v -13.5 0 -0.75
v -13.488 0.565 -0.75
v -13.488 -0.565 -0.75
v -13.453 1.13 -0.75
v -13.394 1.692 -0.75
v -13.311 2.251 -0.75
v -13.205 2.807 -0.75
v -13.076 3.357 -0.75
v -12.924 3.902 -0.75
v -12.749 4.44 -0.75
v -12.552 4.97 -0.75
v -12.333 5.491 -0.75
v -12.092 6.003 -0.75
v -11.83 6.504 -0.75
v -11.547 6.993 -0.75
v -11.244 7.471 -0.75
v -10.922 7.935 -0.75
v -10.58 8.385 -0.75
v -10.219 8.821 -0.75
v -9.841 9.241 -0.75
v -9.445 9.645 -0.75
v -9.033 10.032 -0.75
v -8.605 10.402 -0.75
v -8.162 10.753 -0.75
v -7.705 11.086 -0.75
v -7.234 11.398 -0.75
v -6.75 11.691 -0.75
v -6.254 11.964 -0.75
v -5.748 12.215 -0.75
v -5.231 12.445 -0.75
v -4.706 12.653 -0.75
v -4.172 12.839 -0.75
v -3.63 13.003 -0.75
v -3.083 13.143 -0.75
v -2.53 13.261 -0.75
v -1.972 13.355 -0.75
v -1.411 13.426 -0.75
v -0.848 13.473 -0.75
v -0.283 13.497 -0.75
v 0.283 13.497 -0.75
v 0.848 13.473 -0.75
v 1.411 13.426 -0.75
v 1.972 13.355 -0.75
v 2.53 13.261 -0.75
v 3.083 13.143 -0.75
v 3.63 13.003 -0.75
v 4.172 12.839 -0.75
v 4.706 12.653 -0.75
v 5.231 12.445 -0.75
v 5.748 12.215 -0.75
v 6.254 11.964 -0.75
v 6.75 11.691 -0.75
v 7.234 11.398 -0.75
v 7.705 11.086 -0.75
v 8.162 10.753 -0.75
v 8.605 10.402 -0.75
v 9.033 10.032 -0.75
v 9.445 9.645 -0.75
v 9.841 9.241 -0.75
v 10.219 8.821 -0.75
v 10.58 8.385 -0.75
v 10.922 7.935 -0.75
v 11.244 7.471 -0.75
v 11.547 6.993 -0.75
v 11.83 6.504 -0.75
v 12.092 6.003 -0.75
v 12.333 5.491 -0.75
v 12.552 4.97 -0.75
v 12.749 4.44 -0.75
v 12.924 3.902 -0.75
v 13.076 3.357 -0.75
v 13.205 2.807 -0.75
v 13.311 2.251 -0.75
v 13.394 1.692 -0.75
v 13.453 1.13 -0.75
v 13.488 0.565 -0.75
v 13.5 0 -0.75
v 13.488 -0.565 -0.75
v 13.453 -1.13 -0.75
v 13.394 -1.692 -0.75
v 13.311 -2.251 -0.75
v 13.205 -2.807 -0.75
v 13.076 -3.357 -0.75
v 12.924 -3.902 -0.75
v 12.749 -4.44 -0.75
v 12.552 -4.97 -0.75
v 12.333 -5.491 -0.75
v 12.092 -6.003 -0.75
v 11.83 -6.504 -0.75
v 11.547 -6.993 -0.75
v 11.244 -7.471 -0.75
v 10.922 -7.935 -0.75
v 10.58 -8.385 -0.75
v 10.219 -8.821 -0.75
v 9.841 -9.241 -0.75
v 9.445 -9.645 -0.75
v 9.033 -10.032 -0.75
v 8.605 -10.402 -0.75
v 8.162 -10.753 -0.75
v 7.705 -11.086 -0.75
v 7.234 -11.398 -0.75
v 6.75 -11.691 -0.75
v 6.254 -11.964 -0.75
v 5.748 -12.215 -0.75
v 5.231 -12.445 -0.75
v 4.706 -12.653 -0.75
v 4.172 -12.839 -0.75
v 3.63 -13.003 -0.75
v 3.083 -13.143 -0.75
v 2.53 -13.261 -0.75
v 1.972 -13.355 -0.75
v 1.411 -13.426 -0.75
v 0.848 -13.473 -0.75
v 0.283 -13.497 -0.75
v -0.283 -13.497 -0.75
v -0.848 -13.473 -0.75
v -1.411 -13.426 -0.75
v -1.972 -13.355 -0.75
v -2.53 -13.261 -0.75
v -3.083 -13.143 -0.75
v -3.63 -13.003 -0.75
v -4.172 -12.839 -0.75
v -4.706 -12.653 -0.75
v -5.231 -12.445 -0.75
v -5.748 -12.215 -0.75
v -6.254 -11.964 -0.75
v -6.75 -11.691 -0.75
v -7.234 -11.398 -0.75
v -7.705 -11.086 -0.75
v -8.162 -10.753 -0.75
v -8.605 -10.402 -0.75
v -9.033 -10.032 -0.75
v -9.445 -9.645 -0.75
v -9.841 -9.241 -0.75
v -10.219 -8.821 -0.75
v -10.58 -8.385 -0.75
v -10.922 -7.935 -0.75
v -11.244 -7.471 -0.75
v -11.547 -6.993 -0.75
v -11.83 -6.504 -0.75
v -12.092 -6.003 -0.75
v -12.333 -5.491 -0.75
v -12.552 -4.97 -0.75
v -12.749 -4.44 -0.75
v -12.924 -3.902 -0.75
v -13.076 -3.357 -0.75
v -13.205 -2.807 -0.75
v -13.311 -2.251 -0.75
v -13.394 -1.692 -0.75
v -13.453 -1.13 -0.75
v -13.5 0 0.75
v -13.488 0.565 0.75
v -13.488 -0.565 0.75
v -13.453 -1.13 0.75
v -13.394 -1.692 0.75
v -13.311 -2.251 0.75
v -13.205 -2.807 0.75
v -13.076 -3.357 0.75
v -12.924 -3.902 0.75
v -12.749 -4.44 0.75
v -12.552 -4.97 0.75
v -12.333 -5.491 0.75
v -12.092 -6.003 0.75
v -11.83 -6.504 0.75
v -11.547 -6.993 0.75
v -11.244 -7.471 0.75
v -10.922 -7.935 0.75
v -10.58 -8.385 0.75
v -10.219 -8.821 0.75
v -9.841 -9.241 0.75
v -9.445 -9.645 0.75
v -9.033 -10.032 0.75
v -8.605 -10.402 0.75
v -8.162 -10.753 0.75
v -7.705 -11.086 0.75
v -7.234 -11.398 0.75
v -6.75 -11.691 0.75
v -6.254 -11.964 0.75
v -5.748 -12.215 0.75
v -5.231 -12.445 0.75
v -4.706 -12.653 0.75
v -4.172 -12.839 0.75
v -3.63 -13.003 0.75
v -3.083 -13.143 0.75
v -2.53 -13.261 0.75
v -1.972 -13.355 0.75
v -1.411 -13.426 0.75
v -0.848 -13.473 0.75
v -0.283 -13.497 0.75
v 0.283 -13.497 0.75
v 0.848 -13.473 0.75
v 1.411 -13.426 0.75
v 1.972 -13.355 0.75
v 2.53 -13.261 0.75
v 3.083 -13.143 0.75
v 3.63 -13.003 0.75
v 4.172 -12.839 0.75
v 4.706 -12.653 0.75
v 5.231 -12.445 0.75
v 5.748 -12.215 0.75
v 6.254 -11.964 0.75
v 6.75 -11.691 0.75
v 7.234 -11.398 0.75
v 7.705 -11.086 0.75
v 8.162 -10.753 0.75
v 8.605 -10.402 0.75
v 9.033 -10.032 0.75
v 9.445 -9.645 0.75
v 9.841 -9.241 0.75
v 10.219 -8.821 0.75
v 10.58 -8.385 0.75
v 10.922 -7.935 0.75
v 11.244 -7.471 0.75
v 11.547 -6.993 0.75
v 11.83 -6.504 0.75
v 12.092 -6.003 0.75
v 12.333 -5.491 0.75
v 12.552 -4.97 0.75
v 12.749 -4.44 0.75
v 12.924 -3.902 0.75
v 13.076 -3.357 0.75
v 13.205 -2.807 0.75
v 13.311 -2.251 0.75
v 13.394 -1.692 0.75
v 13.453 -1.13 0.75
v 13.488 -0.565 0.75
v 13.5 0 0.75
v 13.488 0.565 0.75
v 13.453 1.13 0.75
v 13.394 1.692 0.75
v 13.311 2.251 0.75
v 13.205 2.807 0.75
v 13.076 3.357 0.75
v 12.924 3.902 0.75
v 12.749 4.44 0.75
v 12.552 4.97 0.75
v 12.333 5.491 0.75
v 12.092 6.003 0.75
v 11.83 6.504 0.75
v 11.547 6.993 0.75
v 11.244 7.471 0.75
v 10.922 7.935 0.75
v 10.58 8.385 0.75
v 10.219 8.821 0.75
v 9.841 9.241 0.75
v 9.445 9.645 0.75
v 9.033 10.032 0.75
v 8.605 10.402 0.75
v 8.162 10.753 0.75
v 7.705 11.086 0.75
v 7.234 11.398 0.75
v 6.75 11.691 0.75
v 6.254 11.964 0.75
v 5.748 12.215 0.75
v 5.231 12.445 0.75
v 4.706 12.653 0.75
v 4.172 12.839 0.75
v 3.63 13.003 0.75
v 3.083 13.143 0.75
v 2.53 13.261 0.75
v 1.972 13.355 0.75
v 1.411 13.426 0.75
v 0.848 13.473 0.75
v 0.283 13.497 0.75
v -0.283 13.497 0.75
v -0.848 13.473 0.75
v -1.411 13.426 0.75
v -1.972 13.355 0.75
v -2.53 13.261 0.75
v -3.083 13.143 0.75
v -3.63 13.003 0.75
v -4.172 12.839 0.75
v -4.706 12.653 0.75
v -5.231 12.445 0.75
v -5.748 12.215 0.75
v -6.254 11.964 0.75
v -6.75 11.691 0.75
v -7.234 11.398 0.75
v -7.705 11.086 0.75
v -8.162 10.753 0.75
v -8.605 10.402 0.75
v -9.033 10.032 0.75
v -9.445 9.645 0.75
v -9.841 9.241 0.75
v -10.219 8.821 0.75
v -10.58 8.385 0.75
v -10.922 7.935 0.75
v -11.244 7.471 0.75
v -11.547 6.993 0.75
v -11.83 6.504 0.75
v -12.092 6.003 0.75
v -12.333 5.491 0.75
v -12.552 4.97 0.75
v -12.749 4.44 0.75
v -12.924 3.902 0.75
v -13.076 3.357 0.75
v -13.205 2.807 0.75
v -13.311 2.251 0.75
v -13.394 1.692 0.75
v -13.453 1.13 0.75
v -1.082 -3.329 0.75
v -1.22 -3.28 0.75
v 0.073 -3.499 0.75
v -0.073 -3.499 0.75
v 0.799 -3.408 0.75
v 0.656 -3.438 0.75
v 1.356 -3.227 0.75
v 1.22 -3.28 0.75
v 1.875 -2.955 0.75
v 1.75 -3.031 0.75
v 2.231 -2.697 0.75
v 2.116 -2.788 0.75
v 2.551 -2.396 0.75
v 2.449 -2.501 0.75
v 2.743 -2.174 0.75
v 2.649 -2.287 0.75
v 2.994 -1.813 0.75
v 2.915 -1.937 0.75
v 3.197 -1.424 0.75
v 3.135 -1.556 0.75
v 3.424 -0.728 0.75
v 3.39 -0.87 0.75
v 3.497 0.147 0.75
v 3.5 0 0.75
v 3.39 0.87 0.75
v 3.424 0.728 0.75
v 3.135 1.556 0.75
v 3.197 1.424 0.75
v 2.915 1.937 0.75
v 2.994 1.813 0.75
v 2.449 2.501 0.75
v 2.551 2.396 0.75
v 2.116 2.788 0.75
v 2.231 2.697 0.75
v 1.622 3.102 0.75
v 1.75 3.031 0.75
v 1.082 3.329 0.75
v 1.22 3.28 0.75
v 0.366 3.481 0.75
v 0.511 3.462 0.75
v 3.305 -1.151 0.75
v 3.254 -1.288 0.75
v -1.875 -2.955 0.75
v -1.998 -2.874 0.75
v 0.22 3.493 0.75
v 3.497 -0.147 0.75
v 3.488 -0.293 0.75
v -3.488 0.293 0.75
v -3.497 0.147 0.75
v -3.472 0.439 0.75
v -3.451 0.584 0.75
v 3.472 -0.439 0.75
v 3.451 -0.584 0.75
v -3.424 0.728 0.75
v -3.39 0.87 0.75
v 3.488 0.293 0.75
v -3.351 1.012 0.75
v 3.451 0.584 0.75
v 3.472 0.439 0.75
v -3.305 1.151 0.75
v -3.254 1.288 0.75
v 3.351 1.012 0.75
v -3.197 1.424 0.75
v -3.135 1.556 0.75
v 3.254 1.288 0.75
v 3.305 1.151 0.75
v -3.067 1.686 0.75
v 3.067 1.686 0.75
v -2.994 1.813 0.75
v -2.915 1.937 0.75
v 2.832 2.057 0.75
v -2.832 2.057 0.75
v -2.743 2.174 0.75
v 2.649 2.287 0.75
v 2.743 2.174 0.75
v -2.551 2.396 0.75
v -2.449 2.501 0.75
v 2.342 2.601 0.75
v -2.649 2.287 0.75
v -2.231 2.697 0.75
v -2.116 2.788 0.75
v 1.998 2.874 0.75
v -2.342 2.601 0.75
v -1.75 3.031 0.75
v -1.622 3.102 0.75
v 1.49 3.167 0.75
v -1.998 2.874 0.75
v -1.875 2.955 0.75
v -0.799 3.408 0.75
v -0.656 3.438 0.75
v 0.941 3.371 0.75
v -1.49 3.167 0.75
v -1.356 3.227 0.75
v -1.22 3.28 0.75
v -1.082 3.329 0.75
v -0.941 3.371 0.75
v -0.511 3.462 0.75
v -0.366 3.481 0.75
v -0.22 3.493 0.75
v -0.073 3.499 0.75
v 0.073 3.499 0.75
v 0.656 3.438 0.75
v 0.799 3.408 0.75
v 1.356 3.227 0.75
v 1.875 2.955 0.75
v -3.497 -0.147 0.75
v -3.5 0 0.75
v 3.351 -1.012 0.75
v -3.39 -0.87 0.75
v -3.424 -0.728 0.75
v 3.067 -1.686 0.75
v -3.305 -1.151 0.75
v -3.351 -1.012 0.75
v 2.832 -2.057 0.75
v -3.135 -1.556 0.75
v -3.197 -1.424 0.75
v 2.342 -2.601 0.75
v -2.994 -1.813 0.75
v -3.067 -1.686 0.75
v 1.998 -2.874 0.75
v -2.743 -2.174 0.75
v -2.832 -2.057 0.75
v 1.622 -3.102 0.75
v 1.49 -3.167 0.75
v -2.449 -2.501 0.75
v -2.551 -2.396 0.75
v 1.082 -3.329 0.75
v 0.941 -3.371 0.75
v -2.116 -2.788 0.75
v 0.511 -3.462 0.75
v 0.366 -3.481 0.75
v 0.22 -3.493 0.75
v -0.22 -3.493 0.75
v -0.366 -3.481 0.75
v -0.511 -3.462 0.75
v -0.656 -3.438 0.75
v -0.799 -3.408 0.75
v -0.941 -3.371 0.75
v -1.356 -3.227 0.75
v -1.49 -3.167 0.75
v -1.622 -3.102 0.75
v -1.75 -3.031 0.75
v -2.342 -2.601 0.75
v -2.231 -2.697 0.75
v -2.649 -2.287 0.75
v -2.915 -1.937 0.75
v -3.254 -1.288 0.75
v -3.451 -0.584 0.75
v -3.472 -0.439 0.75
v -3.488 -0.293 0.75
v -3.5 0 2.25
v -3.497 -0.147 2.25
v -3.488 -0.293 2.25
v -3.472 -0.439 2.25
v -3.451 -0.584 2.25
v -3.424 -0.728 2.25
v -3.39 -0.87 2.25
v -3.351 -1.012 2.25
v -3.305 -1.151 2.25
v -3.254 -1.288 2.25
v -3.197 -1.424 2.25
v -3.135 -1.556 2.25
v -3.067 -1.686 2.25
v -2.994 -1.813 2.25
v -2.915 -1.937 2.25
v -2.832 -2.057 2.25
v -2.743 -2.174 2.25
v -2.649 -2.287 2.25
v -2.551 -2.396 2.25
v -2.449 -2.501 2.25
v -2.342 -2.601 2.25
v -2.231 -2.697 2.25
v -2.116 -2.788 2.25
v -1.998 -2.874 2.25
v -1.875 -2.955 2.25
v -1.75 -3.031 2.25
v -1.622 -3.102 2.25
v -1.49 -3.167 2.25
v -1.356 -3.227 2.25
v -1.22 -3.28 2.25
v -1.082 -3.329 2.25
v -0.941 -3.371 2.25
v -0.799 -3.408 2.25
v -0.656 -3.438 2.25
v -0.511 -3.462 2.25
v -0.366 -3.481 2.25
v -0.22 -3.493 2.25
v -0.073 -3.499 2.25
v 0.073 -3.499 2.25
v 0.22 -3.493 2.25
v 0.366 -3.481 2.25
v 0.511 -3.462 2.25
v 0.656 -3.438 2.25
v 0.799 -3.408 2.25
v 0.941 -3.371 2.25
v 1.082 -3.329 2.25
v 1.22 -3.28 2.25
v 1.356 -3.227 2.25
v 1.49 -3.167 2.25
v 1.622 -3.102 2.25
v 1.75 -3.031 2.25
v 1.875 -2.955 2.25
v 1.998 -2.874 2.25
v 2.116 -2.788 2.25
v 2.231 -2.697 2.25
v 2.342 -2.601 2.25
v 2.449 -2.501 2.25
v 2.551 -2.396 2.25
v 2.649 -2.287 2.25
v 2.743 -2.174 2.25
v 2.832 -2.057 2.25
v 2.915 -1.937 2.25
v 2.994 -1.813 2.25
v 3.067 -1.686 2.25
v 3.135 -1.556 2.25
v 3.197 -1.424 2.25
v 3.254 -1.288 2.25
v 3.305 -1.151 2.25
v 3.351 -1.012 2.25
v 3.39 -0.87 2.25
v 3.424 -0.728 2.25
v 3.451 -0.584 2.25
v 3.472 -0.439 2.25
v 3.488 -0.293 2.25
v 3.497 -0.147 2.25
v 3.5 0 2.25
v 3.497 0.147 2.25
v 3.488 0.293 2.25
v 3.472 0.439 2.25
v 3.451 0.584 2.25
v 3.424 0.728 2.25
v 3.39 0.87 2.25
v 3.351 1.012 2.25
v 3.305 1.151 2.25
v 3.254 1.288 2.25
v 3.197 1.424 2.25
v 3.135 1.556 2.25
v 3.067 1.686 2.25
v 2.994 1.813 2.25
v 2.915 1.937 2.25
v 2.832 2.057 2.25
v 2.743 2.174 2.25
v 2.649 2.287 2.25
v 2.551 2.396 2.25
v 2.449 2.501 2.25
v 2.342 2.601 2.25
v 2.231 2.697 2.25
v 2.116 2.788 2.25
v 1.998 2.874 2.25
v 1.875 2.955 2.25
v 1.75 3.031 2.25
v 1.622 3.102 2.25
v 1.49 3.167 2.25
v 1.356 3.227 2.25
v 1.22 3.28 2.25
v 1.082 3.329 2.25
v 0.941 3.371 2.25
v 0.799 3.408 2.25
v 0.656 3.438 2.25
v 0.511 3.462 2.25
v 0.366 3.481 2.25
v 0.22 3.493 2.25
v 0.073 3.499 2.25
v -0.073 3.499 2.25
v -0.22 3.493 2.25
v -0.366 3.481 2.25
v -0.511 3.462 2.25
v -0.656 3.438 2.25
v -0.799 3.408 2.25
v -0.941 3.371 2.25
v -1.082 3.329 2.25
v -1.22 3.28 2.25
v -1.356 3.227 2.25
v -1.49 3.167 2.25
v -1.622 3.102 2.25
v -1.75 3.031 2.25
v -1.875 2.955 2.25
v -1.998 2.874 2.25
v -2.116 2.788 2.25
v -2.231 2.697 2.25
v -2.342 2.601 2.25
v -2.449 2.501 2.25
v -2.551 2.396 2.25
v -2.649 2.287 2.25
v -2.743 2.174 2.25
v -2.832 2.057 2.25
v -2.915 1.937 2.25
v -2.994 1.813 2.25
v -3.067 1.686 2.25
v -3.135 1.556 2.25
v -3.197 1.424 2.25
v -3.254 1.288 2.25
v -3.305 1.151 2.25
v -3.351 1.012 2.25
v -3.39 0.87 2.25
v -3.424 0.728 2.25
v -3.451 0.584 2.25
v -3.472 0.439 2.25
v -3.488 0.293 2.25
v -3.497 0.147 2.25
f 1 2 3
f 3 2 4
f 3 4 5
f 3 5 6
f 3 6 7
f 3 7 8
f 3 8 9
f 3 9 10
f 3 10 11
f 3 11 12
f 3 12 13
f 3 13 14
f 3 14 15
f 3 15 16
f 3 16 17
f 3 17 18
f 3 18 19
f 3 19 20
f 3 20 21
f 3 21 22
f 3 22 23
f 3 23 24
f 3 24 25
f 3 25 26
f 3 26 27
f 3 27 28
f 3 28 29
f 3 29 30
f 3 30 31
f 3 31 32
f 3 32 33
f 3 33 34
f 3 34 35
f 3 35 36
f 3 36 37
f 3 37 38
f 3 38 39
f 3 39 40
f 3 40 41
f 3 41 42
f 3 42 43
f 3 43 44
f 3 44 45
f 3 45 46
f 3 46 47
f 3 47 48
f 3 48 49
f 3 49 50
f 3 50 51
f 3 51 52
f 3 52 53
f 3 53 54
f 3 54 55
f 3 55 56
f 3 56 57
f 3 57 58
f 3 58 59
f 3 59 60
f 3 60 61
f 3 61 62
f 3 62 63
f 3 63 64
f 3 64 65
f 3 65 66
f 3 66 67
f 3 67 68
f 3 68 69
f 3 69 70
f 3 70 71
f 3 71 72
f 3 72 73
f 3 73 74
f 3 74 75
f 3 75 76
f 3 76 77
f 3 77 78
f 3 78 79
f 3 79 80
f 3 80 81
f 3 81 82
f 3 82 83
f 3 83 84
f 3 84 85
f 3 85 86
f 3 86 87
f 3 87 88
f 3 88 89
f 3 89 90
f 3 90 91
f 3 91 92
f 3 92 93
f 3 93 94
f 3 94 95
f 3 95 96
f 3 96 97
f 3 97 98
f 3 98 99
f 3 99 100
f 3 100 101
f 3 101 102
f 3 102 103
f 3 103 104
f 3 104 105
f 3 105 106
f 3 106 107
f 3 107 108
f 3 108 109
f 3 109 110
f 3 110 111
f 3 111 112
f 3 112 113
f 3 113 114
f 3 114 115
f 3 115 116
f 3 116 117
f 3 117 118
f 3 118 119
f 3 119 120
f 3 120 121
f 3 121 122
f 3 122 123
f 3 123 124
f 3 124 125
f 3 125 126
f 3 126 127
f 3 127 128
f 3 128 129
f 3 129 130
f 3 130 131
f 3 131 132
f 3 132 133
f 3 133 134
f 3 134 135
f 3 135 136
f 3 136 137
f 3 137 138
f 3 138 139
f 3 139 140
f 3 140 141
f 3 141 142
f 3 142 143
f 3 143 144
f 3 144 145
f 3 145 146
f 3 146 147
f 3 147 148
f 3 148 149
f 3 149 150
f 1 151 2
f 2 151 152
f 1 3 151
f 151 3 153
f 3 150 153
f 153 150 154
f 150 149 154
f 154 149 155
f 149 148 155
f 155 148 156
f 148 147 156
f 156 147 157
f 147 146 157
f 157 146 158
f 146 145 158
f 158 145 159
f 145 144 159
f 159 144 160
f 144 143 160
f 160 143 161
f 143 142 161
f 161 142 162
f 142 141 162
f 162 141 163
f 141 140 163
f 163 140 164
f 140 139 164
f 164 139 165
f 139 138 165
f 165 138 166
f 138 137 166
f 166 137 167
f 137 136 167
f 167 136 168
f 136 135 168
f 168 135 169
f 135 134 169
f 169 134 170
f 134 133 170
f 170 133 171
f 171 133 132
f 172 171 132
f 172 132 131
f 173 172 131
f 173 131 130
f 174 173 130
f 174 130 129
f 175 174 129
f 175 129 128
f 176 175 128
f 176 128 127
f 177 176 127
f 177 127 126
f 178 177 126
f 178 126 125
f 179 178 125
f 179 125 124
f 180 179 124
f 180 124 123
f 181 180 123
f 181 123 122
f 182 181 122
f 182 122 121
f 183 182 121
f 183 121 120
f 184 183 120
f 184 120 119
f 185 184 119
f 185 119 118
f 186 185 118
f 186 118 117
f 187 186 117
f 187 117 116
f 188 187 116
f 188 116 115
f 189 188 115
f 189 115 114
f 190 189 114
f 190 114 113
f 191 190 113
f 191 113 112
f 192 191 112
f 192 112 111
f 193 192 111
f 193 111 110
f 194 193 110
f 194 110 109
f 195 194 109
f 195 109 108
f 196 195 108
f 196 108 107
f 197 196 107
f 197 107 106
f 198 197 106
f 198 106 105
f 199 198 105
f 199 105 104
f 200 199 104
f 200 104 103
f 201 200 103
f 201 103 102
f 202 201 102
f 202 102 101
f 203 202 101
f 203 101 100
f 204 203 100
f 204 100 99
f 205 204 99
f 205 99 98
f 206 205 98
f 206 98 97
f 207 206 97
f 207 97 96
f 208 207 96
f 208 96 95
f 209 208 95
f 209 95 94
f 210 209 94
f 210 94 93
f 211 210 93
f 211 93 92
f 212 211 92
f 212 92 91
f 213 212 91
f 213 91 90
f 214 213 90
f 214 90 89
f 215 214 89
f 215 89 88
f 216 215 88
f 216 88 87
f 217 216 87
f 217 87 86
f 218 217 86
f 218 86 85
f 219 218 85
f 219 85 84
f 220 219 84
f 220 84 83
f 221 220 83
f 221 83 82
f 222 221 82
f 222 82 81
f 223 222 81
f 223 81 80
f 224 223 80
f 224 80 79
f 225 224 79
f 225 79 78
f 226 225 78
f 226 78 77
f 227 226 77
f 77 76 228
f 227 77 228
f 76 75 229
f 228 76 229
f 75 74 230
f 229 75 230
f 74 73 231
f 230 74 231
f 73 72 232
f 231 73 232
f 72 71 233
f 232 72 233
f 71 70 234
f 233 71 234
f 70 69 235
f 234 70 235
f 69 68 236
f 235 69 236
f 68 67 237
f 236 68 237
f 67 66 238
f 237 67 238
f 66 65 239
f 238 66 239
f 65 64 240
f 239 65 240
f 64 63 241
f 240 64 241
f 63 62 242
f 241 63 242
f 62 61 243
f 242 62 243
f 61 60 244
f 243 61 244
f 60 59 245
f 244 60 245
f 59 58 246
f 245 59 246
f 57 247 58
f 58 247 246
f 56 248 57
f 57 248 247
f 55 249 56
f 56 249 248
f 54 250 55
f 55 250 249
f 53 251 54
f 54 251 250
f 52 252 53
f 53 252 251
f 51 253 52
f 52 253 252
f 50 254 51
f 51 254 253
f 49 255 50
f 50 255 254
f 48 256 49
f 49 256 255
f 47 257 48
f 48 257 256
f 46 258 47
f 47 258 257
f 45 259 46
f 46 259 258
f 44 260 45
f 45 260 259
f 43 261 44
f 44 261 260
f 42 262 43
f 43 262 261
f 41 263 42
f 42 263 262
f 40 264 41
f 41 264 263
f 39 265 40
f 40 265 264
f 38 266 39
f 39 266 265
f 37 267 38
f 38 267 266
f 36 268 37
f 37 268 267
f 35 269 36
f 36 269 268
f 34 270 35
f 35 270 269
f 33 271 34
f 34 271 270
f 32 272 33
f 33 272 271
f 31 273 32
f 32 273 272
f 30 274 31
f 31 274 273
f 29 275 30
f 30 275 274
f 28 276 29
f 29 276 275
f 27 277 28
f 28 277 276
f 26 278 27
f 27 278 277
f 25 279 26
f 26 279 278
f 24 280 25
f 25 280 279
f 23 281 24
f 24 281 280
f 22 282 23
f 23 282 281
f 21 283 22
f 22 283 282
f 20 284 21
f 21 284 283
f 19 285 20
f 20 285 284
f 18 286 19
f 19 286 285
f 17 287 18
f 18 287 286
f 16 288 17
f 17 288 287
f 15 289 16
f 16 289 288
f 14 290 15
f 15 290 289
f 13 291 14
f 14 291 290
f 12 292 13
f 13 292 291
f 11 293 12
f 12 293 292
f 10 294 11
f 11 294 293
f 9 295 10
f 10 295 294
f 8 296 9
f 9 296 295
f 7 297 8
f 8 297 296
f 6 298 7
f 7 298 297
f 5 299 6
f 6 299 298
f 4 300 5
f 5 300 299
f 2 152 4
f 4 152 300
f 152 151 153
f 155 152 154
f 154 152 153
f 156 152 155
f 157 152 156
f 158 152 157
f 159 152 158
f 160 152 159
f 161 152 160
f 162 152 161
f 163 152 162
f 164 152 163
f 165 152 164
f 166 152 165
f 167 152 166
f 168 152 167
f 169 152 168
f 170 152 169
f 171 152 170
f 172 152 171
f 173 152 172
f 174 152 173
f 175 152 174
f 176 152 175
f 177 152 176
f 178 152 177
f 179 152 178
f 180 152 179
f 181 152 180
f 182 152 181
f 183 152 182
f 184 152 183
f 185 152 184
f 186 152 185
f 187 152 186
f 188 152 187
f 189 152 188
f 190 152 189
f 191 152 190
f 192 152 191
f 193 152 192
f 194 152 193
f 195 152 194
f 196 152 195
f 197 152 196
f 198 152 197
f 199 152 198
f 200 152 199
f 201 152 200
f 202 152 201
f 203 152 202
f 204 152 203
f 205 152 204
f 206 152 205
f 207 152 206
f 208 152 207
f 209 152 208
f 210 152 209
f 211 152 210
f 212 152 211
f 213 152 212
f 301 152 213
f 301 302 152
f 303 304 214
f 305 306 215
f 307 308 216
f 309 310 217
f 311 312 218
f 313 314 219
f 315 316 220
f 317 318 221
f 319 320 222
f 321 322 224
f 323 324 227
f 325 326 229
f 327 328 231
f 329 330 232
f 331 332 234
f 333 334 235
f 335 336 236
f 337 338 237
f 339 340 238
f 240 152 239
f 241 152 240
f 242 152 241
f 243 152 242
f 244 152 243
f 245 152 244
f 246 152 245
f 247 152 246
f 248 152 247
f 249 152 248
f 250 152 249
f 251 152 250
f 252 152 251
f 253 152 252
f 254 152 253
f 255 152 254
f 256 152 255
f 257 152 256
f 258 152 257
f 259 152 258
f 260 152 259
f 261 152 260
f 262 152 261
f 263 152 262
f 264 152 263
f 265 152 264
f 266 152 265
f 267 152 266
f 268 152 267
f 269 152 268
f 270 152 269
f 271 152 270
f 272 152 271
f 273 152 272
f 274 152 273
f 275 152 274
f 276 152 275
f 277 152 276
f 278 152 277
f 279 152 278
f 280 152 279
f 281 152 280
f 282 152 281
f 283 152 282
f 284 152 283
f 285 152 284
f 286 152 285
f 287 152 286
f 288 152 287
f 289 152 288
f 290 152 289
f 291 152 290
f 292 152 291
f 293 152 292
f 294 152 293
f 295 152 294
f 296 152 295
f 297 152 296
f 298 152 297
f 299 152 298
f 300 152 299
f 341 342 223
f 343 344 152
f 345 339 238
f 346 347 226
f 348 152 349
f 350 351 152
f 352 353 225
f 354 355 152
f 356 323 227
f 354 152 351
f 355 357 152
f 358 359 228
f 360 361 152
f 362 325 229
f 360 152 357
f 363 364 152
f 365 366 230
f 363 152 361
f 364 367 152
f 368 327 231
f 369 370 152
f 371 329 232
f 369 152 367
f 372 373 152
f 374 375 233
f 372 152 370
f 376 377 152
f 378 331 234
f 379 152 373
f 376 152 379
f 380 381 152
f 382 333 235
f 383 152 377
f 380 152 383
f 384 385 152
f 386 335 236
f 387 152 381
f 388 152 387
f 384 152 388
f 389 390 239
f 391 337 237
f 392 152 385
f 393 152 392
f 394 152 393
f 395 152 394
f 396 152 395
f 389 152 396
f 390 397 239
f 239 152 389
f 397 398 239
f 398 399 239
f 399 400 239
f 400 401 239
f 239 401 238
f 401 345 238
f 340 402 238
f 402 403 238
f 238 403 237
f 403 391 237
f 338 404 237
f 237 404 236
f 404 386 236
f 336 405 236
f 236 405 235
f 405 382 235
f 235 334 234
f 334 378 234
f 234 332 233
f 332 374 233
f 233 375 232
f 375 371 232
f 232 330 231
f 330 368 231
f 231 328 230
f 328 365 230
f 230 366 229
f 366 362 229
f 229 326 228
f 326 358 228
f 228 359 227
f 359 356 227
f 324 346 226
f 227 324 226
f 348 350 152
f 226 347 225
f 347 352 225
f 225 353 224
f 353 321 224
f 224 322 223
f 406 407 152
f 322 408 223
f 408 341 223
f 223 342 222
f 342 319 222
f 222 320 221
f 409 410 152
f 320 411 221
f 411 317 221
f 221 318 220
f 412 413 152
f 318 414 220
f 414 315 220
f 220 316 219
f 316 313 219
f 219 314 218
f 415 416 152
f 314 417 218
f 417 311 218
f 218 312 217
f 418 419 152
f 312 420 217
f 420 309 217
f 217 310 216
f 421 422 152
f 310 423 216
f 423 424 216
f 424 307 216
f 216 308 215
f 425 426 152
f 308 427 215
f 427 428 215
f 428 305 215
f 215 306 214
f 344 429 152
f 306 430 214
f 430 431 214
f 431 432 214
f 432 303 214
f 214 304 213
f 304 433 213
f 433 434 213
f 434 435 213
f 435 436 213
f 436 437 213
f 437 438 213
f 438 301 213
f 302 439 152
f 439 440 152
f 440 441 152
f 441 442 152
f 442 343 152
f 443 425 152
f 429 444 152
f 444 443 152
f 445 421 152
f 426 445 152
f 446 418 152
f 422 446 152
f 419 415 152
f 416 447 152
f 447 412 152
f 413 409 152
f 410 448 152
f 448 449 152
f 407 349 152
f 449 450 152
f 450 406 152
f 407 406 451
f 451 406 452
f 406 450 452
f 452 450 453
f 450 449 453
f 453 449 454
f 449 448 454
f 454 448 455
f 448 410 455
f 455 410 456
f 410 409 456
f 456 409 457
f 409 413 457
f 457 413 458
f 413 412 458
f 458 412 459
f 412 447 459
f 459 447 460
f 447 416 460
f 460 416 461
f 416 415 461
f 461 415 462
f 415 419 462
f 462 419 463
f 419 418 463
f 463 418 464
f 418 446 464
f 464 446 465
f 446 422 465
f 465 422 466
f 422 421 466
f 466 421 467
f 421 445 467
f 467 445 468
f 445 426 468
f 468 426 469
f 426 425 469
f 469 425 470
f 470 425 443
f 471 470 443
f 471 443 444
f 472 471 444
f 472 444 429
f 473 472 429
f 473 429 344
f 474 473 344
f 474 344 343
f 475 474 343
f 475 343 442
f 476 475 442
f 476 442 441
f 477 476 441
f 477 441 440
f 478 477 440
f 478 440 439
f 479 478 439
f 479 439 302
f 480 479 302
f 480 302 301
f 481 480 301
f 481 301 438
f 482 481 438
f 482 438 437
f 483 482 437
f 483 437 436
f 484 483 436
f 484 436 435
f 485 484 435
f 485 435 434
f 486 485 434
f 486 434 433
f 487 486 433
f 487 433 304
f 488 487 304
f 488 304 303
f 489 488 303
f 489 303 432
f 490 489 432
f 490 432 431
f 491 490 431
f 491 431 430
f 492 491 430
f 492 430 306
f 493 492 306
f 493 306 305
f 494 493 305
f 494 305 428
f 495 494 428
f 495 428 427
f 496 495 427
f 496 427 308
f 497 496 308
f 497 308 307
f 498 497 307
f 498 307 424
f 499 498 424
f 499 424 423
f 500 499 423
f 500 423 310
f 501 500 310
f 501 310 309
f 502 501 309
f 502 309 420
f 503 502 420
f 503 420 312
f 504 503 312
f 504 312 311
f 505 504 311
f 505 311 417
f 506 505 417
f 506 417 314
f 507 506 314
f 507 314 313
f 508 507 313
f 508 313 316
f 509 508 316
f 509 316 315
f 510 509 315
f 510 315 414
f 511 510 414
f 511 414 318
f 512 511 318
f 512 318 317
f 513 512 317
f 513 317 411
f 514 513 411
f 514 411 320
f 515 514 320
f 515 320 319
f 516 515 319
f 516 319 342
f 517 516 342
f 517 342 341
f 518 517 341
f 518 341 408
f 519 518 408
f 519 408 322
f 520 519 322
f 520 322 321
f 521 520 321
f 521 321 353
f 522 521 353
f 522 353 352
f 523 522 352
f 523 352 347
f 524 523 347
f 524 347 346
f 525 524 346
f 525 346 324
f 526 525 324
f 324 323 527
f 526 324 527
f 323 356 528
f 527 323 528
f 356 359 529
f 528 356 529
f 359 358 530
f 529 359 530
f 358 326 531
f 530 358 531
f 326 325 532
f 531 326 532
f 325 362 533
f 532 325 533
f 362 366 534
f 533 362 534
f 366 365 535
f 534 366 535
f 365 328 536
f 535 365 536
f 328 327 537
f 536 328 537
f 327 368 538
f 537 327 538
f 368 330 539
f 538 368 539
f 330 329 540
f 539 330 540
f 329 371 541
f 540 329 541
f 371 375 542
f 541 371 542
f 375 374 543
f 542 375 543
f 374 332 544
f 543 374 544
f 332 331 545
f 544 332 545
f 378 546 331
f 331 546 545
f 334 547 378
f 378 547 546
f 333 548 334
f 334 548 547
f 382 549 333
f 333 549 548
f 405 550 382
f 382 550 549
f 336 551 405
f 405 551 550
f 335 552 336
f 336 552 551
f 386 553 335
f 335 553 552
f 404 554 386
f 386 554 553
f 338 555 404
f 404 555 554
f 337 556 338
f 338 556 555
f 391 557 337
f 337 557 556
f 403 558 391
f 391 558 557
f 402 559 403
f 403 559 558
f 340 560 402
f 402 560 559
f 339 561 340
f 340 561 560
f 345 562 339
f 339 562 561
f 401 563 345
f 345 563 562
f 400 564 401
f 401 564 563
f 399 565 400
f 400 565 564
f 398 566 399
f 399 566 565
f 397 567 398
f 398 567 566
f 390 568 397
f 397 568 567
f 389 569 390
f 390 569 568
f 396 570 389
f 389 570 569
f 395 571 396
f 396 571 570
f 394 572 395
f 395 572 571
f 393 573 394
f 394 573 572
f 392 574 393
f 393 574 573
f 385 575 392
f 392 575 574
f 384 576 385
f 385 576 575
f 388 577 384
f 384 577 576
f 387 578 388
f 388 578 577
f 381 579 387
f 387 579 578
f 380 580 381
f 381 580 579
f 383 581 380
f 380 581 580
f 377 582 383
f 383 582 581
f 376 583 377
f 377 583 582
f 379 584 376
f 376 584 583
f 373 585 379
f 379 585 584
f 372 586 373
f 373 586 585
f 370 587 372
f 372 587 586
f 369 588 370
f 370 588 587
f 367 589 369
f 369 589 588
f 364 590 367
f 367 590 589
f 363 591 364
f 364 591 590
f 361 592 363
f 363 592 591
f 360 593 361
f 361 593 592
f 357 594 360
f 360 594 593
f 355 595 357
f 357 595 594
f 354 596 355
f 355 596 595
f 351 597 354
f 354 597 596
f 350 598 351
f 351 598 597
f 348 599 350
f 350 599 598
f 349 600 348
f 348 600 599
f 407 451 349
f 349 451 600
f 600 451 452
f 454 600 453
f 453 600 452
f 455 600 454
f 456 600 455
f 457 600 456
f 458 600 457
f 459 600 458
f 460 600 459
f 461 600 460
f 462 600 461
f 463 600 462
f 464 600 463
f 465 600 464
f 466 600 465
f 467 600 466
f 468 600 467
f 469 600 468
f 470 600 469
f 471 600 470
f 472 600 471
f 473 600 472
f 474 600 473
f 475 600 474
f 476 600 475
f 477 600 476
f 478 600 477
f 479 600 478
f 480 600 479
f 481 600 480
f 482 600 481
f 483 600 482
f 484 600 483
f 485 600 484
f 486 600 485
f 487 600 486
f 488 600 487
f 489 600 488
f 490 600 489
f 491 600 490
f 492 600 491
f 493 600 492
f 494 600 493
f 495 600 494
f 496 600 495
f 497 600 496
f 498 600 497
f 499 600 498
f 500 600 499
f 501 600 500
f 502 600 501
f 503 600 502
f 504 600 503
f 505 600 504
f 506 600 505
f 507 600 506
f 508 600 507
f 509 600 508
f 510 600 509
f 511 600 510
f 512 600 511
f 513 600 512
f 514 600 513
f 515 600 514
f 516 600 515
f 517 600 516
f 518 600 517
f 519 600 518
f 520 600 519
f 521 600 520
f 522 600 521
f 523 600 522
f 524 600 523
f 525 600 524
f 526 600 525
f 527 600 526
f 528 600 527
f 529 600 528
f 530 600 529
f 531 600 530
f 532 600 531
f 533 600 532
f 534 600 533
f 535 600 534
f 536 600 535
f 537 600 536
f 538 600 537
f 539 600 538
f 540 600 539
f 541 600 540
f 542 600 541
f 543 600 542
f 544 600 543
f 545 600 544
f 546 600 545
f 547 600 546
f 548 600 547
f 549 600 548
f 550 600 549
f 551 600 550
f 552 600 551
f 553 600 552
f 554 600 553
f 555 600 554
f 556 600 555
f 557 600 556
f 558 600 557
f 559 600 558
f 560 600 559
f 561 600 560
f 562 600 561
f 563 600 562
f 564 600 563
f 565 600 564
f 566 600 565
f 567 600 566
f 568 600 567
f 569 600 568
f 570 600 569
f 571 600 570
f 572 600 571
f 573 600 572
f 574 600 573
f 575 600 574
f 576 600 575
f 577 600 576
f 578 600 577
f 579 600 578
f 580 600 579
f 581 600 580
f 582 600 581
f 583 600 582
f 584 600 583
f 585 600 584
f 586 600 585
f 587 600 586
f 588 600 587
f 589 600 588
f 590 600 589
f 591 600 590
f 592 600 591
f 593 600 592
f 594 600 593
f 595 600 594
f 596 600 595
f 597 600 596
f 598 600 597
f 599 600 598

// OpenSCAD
// file: functions.scad
// creative commons share alike 3.0 
// copyright longevity software d.b.a. terawatt industries
// author: free beachler

function andWidth(h) = h * 0.5;

function andBodyHeight(h) = h * 0.7;

function footHeight(h) = h * 0.2;

function footWidth(h) = h * 0.25;
// main file
// creative commons share alike 3.0 
// copyright longevity software d.b.a. terawatt industries
// author: free beachler

use <functions.scad>;

$fn = 150;

o = 0.01;
height = 30;

neck(height, o);

module neck(h = height, o = 0.01) {
	union() {
		cylinder(r = andWidth(h) - 1.5, h = 1.5, center=true);
		translate([0, 0, 1.5 - o]) cylinder(r = 3.5, h = 1.5 + 2 * o, center=true);
	}
}
